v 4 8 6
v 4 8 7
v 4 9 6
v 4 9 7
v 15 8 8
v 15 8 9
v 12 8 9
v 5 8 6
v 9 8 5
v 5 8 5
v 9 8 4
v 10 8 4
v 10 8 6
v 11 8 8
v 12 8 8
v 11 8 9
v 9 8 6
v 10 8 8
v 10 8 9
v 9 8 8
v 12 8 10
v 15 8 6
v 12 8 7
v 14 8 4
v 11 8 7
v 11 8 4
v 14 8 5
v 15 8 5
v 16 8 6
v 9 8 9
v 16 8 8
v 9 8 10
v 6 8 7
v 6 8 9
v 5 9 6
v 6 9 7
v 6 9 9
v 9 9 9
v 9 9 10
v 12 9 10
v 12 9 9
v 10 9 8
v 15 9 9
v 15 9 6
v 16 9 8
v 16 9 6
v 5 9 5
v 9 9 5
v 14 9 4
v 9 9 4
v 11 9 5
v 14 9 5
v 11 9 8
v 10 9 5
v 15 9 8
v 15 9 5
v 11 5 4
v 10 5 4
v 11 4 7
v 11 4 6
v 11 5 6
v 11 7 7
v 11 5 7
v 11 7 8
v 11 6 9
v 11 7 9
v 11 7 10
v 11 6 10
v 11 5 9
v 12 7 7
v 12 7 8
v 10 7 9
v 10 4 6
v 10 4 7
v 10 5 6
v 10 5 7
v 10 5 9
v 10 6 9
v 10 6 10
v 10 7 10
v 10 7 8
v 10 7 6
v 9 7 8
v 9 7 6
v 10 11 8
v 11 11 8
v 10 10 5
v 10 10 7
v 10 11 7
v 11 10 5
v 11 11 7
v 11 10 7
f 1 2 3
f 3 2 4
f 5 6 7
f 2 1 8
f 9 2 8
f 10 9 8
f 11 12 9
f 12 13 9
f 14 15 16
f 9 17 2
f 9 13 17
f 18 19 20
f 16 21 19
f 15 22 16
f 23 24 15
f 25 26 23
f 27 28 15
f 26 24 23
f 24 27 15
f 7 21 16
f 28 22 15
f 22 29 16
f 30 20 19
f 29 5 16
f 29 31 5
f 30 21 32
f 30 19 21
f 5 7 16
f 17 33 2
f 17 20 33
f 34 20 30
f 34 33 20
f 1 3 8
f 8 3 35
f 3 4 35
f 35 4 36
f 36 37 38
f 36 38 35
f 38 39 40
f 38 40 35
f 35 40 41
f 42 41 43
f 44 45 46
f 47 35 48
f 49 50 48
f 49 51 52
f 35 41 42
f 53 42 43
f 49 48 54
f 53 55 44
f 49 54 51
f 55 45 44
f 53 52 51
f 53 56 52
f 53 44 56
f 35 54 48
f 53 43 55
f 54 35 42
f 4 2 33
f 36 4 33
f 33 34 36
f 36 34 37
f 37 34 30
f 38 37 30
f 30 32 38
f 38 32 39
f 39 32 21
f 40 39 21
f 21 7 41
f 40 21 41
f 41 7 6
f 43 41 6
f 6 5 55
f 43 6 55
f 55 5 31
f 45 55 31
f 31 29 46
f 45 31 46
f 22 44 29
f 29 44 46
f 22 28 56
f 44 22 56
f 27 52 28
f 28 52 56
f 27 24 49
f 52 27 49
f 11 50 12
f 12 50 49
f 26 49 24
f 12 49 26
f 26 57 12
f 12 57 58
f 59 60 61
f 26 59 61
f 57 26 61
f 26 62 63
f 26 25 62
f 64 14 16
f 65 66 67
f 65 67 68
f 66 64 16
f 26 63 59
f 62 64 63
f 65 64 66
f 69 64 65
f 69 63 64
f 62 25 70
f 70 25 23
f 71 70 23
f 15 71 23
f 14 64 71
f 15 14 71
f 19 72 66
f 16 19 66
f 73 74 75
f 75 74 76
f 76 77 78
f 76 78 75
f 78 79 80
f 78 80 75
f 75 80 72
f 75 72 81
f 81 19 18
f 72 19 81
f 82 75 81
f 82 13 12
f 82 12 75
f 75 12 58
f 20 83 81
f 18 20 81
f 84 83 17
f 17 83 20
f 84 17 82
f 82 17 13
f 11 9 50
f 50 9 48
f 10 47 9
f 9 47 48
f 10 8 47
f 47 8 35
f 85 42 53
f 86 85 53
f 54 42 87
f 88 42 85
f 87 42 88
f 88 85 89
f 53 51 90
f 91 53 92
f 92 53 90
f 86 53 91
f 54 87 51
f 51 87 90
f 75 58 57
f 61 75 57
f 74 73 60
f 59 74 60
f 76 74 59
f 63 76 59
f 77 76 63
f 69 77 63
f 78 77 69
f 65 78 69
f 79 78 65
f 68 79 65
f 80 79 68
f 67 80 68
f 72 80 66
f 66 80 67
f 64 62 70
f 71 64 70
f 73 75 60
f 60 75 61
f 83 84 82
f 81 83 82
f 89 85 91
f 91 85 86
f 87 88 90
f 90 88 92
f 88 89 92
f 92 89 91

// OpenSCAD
// Create matrix
mr = 	[
[4,8,6],
[5,8,5],
[5,8,6],
[6,8,5],
[6,8,6],
[6,8,7],
[6,8,8],
[7,8,5],
[7,8,6],
[7,8,7],
[7,8,8],
[8,8,5],
[8,8,6],
[8,8,7],
[8,8,8],
[9,7,6],
[9,7,7],
[9,8,4],
[9,8,5],
[9,8,6],
[9,8,7],
[9,8,8],
[9,8,9],
[10,4,6],
[10,5,4],
[10,5,5],
[10,5,6],
[10,5,7],
[10,5,8],
[10,6,4],
[10,6,5],
[10,6,6],
[10,6,7],
[10,6,8],
[10,6,9],
[10,7,4],
[10,7,5],
[10,7,6],
[10,7,7],
[10,7,8],
[10,8,4],
[10,8,5],
[10,8,6],
[10,8,7],
[10,8,8],
[10,8,9],
[10,9,5],
[10,9,6],
[10,9,7],
[10,10,7],
[11,7,7],
[11,8,4],
[11,8,5],
[11,8,6],
[11,8,7],
[11,8,8],
[11,8,9],
[12,8,4],
[12,8,5],
[12,8,6],
[12,8,7],
[12,8,8],
[13,8,4],
[13,8,5],
[13,8,6],
[13,8,7],
[13,8,8],
[14,8,5],
[14,8,6],
[14,8,7],
[14,8,8],
[15,8,6],
[15,8,7],
		];
// Draw cubes
// Z-axis
for (a =[0:len(mr)-1]){
	color([1,0,0]) translate([mr[a][0], mr[a][1], mr[a][2]])cube([1,1,1]);
			
}
